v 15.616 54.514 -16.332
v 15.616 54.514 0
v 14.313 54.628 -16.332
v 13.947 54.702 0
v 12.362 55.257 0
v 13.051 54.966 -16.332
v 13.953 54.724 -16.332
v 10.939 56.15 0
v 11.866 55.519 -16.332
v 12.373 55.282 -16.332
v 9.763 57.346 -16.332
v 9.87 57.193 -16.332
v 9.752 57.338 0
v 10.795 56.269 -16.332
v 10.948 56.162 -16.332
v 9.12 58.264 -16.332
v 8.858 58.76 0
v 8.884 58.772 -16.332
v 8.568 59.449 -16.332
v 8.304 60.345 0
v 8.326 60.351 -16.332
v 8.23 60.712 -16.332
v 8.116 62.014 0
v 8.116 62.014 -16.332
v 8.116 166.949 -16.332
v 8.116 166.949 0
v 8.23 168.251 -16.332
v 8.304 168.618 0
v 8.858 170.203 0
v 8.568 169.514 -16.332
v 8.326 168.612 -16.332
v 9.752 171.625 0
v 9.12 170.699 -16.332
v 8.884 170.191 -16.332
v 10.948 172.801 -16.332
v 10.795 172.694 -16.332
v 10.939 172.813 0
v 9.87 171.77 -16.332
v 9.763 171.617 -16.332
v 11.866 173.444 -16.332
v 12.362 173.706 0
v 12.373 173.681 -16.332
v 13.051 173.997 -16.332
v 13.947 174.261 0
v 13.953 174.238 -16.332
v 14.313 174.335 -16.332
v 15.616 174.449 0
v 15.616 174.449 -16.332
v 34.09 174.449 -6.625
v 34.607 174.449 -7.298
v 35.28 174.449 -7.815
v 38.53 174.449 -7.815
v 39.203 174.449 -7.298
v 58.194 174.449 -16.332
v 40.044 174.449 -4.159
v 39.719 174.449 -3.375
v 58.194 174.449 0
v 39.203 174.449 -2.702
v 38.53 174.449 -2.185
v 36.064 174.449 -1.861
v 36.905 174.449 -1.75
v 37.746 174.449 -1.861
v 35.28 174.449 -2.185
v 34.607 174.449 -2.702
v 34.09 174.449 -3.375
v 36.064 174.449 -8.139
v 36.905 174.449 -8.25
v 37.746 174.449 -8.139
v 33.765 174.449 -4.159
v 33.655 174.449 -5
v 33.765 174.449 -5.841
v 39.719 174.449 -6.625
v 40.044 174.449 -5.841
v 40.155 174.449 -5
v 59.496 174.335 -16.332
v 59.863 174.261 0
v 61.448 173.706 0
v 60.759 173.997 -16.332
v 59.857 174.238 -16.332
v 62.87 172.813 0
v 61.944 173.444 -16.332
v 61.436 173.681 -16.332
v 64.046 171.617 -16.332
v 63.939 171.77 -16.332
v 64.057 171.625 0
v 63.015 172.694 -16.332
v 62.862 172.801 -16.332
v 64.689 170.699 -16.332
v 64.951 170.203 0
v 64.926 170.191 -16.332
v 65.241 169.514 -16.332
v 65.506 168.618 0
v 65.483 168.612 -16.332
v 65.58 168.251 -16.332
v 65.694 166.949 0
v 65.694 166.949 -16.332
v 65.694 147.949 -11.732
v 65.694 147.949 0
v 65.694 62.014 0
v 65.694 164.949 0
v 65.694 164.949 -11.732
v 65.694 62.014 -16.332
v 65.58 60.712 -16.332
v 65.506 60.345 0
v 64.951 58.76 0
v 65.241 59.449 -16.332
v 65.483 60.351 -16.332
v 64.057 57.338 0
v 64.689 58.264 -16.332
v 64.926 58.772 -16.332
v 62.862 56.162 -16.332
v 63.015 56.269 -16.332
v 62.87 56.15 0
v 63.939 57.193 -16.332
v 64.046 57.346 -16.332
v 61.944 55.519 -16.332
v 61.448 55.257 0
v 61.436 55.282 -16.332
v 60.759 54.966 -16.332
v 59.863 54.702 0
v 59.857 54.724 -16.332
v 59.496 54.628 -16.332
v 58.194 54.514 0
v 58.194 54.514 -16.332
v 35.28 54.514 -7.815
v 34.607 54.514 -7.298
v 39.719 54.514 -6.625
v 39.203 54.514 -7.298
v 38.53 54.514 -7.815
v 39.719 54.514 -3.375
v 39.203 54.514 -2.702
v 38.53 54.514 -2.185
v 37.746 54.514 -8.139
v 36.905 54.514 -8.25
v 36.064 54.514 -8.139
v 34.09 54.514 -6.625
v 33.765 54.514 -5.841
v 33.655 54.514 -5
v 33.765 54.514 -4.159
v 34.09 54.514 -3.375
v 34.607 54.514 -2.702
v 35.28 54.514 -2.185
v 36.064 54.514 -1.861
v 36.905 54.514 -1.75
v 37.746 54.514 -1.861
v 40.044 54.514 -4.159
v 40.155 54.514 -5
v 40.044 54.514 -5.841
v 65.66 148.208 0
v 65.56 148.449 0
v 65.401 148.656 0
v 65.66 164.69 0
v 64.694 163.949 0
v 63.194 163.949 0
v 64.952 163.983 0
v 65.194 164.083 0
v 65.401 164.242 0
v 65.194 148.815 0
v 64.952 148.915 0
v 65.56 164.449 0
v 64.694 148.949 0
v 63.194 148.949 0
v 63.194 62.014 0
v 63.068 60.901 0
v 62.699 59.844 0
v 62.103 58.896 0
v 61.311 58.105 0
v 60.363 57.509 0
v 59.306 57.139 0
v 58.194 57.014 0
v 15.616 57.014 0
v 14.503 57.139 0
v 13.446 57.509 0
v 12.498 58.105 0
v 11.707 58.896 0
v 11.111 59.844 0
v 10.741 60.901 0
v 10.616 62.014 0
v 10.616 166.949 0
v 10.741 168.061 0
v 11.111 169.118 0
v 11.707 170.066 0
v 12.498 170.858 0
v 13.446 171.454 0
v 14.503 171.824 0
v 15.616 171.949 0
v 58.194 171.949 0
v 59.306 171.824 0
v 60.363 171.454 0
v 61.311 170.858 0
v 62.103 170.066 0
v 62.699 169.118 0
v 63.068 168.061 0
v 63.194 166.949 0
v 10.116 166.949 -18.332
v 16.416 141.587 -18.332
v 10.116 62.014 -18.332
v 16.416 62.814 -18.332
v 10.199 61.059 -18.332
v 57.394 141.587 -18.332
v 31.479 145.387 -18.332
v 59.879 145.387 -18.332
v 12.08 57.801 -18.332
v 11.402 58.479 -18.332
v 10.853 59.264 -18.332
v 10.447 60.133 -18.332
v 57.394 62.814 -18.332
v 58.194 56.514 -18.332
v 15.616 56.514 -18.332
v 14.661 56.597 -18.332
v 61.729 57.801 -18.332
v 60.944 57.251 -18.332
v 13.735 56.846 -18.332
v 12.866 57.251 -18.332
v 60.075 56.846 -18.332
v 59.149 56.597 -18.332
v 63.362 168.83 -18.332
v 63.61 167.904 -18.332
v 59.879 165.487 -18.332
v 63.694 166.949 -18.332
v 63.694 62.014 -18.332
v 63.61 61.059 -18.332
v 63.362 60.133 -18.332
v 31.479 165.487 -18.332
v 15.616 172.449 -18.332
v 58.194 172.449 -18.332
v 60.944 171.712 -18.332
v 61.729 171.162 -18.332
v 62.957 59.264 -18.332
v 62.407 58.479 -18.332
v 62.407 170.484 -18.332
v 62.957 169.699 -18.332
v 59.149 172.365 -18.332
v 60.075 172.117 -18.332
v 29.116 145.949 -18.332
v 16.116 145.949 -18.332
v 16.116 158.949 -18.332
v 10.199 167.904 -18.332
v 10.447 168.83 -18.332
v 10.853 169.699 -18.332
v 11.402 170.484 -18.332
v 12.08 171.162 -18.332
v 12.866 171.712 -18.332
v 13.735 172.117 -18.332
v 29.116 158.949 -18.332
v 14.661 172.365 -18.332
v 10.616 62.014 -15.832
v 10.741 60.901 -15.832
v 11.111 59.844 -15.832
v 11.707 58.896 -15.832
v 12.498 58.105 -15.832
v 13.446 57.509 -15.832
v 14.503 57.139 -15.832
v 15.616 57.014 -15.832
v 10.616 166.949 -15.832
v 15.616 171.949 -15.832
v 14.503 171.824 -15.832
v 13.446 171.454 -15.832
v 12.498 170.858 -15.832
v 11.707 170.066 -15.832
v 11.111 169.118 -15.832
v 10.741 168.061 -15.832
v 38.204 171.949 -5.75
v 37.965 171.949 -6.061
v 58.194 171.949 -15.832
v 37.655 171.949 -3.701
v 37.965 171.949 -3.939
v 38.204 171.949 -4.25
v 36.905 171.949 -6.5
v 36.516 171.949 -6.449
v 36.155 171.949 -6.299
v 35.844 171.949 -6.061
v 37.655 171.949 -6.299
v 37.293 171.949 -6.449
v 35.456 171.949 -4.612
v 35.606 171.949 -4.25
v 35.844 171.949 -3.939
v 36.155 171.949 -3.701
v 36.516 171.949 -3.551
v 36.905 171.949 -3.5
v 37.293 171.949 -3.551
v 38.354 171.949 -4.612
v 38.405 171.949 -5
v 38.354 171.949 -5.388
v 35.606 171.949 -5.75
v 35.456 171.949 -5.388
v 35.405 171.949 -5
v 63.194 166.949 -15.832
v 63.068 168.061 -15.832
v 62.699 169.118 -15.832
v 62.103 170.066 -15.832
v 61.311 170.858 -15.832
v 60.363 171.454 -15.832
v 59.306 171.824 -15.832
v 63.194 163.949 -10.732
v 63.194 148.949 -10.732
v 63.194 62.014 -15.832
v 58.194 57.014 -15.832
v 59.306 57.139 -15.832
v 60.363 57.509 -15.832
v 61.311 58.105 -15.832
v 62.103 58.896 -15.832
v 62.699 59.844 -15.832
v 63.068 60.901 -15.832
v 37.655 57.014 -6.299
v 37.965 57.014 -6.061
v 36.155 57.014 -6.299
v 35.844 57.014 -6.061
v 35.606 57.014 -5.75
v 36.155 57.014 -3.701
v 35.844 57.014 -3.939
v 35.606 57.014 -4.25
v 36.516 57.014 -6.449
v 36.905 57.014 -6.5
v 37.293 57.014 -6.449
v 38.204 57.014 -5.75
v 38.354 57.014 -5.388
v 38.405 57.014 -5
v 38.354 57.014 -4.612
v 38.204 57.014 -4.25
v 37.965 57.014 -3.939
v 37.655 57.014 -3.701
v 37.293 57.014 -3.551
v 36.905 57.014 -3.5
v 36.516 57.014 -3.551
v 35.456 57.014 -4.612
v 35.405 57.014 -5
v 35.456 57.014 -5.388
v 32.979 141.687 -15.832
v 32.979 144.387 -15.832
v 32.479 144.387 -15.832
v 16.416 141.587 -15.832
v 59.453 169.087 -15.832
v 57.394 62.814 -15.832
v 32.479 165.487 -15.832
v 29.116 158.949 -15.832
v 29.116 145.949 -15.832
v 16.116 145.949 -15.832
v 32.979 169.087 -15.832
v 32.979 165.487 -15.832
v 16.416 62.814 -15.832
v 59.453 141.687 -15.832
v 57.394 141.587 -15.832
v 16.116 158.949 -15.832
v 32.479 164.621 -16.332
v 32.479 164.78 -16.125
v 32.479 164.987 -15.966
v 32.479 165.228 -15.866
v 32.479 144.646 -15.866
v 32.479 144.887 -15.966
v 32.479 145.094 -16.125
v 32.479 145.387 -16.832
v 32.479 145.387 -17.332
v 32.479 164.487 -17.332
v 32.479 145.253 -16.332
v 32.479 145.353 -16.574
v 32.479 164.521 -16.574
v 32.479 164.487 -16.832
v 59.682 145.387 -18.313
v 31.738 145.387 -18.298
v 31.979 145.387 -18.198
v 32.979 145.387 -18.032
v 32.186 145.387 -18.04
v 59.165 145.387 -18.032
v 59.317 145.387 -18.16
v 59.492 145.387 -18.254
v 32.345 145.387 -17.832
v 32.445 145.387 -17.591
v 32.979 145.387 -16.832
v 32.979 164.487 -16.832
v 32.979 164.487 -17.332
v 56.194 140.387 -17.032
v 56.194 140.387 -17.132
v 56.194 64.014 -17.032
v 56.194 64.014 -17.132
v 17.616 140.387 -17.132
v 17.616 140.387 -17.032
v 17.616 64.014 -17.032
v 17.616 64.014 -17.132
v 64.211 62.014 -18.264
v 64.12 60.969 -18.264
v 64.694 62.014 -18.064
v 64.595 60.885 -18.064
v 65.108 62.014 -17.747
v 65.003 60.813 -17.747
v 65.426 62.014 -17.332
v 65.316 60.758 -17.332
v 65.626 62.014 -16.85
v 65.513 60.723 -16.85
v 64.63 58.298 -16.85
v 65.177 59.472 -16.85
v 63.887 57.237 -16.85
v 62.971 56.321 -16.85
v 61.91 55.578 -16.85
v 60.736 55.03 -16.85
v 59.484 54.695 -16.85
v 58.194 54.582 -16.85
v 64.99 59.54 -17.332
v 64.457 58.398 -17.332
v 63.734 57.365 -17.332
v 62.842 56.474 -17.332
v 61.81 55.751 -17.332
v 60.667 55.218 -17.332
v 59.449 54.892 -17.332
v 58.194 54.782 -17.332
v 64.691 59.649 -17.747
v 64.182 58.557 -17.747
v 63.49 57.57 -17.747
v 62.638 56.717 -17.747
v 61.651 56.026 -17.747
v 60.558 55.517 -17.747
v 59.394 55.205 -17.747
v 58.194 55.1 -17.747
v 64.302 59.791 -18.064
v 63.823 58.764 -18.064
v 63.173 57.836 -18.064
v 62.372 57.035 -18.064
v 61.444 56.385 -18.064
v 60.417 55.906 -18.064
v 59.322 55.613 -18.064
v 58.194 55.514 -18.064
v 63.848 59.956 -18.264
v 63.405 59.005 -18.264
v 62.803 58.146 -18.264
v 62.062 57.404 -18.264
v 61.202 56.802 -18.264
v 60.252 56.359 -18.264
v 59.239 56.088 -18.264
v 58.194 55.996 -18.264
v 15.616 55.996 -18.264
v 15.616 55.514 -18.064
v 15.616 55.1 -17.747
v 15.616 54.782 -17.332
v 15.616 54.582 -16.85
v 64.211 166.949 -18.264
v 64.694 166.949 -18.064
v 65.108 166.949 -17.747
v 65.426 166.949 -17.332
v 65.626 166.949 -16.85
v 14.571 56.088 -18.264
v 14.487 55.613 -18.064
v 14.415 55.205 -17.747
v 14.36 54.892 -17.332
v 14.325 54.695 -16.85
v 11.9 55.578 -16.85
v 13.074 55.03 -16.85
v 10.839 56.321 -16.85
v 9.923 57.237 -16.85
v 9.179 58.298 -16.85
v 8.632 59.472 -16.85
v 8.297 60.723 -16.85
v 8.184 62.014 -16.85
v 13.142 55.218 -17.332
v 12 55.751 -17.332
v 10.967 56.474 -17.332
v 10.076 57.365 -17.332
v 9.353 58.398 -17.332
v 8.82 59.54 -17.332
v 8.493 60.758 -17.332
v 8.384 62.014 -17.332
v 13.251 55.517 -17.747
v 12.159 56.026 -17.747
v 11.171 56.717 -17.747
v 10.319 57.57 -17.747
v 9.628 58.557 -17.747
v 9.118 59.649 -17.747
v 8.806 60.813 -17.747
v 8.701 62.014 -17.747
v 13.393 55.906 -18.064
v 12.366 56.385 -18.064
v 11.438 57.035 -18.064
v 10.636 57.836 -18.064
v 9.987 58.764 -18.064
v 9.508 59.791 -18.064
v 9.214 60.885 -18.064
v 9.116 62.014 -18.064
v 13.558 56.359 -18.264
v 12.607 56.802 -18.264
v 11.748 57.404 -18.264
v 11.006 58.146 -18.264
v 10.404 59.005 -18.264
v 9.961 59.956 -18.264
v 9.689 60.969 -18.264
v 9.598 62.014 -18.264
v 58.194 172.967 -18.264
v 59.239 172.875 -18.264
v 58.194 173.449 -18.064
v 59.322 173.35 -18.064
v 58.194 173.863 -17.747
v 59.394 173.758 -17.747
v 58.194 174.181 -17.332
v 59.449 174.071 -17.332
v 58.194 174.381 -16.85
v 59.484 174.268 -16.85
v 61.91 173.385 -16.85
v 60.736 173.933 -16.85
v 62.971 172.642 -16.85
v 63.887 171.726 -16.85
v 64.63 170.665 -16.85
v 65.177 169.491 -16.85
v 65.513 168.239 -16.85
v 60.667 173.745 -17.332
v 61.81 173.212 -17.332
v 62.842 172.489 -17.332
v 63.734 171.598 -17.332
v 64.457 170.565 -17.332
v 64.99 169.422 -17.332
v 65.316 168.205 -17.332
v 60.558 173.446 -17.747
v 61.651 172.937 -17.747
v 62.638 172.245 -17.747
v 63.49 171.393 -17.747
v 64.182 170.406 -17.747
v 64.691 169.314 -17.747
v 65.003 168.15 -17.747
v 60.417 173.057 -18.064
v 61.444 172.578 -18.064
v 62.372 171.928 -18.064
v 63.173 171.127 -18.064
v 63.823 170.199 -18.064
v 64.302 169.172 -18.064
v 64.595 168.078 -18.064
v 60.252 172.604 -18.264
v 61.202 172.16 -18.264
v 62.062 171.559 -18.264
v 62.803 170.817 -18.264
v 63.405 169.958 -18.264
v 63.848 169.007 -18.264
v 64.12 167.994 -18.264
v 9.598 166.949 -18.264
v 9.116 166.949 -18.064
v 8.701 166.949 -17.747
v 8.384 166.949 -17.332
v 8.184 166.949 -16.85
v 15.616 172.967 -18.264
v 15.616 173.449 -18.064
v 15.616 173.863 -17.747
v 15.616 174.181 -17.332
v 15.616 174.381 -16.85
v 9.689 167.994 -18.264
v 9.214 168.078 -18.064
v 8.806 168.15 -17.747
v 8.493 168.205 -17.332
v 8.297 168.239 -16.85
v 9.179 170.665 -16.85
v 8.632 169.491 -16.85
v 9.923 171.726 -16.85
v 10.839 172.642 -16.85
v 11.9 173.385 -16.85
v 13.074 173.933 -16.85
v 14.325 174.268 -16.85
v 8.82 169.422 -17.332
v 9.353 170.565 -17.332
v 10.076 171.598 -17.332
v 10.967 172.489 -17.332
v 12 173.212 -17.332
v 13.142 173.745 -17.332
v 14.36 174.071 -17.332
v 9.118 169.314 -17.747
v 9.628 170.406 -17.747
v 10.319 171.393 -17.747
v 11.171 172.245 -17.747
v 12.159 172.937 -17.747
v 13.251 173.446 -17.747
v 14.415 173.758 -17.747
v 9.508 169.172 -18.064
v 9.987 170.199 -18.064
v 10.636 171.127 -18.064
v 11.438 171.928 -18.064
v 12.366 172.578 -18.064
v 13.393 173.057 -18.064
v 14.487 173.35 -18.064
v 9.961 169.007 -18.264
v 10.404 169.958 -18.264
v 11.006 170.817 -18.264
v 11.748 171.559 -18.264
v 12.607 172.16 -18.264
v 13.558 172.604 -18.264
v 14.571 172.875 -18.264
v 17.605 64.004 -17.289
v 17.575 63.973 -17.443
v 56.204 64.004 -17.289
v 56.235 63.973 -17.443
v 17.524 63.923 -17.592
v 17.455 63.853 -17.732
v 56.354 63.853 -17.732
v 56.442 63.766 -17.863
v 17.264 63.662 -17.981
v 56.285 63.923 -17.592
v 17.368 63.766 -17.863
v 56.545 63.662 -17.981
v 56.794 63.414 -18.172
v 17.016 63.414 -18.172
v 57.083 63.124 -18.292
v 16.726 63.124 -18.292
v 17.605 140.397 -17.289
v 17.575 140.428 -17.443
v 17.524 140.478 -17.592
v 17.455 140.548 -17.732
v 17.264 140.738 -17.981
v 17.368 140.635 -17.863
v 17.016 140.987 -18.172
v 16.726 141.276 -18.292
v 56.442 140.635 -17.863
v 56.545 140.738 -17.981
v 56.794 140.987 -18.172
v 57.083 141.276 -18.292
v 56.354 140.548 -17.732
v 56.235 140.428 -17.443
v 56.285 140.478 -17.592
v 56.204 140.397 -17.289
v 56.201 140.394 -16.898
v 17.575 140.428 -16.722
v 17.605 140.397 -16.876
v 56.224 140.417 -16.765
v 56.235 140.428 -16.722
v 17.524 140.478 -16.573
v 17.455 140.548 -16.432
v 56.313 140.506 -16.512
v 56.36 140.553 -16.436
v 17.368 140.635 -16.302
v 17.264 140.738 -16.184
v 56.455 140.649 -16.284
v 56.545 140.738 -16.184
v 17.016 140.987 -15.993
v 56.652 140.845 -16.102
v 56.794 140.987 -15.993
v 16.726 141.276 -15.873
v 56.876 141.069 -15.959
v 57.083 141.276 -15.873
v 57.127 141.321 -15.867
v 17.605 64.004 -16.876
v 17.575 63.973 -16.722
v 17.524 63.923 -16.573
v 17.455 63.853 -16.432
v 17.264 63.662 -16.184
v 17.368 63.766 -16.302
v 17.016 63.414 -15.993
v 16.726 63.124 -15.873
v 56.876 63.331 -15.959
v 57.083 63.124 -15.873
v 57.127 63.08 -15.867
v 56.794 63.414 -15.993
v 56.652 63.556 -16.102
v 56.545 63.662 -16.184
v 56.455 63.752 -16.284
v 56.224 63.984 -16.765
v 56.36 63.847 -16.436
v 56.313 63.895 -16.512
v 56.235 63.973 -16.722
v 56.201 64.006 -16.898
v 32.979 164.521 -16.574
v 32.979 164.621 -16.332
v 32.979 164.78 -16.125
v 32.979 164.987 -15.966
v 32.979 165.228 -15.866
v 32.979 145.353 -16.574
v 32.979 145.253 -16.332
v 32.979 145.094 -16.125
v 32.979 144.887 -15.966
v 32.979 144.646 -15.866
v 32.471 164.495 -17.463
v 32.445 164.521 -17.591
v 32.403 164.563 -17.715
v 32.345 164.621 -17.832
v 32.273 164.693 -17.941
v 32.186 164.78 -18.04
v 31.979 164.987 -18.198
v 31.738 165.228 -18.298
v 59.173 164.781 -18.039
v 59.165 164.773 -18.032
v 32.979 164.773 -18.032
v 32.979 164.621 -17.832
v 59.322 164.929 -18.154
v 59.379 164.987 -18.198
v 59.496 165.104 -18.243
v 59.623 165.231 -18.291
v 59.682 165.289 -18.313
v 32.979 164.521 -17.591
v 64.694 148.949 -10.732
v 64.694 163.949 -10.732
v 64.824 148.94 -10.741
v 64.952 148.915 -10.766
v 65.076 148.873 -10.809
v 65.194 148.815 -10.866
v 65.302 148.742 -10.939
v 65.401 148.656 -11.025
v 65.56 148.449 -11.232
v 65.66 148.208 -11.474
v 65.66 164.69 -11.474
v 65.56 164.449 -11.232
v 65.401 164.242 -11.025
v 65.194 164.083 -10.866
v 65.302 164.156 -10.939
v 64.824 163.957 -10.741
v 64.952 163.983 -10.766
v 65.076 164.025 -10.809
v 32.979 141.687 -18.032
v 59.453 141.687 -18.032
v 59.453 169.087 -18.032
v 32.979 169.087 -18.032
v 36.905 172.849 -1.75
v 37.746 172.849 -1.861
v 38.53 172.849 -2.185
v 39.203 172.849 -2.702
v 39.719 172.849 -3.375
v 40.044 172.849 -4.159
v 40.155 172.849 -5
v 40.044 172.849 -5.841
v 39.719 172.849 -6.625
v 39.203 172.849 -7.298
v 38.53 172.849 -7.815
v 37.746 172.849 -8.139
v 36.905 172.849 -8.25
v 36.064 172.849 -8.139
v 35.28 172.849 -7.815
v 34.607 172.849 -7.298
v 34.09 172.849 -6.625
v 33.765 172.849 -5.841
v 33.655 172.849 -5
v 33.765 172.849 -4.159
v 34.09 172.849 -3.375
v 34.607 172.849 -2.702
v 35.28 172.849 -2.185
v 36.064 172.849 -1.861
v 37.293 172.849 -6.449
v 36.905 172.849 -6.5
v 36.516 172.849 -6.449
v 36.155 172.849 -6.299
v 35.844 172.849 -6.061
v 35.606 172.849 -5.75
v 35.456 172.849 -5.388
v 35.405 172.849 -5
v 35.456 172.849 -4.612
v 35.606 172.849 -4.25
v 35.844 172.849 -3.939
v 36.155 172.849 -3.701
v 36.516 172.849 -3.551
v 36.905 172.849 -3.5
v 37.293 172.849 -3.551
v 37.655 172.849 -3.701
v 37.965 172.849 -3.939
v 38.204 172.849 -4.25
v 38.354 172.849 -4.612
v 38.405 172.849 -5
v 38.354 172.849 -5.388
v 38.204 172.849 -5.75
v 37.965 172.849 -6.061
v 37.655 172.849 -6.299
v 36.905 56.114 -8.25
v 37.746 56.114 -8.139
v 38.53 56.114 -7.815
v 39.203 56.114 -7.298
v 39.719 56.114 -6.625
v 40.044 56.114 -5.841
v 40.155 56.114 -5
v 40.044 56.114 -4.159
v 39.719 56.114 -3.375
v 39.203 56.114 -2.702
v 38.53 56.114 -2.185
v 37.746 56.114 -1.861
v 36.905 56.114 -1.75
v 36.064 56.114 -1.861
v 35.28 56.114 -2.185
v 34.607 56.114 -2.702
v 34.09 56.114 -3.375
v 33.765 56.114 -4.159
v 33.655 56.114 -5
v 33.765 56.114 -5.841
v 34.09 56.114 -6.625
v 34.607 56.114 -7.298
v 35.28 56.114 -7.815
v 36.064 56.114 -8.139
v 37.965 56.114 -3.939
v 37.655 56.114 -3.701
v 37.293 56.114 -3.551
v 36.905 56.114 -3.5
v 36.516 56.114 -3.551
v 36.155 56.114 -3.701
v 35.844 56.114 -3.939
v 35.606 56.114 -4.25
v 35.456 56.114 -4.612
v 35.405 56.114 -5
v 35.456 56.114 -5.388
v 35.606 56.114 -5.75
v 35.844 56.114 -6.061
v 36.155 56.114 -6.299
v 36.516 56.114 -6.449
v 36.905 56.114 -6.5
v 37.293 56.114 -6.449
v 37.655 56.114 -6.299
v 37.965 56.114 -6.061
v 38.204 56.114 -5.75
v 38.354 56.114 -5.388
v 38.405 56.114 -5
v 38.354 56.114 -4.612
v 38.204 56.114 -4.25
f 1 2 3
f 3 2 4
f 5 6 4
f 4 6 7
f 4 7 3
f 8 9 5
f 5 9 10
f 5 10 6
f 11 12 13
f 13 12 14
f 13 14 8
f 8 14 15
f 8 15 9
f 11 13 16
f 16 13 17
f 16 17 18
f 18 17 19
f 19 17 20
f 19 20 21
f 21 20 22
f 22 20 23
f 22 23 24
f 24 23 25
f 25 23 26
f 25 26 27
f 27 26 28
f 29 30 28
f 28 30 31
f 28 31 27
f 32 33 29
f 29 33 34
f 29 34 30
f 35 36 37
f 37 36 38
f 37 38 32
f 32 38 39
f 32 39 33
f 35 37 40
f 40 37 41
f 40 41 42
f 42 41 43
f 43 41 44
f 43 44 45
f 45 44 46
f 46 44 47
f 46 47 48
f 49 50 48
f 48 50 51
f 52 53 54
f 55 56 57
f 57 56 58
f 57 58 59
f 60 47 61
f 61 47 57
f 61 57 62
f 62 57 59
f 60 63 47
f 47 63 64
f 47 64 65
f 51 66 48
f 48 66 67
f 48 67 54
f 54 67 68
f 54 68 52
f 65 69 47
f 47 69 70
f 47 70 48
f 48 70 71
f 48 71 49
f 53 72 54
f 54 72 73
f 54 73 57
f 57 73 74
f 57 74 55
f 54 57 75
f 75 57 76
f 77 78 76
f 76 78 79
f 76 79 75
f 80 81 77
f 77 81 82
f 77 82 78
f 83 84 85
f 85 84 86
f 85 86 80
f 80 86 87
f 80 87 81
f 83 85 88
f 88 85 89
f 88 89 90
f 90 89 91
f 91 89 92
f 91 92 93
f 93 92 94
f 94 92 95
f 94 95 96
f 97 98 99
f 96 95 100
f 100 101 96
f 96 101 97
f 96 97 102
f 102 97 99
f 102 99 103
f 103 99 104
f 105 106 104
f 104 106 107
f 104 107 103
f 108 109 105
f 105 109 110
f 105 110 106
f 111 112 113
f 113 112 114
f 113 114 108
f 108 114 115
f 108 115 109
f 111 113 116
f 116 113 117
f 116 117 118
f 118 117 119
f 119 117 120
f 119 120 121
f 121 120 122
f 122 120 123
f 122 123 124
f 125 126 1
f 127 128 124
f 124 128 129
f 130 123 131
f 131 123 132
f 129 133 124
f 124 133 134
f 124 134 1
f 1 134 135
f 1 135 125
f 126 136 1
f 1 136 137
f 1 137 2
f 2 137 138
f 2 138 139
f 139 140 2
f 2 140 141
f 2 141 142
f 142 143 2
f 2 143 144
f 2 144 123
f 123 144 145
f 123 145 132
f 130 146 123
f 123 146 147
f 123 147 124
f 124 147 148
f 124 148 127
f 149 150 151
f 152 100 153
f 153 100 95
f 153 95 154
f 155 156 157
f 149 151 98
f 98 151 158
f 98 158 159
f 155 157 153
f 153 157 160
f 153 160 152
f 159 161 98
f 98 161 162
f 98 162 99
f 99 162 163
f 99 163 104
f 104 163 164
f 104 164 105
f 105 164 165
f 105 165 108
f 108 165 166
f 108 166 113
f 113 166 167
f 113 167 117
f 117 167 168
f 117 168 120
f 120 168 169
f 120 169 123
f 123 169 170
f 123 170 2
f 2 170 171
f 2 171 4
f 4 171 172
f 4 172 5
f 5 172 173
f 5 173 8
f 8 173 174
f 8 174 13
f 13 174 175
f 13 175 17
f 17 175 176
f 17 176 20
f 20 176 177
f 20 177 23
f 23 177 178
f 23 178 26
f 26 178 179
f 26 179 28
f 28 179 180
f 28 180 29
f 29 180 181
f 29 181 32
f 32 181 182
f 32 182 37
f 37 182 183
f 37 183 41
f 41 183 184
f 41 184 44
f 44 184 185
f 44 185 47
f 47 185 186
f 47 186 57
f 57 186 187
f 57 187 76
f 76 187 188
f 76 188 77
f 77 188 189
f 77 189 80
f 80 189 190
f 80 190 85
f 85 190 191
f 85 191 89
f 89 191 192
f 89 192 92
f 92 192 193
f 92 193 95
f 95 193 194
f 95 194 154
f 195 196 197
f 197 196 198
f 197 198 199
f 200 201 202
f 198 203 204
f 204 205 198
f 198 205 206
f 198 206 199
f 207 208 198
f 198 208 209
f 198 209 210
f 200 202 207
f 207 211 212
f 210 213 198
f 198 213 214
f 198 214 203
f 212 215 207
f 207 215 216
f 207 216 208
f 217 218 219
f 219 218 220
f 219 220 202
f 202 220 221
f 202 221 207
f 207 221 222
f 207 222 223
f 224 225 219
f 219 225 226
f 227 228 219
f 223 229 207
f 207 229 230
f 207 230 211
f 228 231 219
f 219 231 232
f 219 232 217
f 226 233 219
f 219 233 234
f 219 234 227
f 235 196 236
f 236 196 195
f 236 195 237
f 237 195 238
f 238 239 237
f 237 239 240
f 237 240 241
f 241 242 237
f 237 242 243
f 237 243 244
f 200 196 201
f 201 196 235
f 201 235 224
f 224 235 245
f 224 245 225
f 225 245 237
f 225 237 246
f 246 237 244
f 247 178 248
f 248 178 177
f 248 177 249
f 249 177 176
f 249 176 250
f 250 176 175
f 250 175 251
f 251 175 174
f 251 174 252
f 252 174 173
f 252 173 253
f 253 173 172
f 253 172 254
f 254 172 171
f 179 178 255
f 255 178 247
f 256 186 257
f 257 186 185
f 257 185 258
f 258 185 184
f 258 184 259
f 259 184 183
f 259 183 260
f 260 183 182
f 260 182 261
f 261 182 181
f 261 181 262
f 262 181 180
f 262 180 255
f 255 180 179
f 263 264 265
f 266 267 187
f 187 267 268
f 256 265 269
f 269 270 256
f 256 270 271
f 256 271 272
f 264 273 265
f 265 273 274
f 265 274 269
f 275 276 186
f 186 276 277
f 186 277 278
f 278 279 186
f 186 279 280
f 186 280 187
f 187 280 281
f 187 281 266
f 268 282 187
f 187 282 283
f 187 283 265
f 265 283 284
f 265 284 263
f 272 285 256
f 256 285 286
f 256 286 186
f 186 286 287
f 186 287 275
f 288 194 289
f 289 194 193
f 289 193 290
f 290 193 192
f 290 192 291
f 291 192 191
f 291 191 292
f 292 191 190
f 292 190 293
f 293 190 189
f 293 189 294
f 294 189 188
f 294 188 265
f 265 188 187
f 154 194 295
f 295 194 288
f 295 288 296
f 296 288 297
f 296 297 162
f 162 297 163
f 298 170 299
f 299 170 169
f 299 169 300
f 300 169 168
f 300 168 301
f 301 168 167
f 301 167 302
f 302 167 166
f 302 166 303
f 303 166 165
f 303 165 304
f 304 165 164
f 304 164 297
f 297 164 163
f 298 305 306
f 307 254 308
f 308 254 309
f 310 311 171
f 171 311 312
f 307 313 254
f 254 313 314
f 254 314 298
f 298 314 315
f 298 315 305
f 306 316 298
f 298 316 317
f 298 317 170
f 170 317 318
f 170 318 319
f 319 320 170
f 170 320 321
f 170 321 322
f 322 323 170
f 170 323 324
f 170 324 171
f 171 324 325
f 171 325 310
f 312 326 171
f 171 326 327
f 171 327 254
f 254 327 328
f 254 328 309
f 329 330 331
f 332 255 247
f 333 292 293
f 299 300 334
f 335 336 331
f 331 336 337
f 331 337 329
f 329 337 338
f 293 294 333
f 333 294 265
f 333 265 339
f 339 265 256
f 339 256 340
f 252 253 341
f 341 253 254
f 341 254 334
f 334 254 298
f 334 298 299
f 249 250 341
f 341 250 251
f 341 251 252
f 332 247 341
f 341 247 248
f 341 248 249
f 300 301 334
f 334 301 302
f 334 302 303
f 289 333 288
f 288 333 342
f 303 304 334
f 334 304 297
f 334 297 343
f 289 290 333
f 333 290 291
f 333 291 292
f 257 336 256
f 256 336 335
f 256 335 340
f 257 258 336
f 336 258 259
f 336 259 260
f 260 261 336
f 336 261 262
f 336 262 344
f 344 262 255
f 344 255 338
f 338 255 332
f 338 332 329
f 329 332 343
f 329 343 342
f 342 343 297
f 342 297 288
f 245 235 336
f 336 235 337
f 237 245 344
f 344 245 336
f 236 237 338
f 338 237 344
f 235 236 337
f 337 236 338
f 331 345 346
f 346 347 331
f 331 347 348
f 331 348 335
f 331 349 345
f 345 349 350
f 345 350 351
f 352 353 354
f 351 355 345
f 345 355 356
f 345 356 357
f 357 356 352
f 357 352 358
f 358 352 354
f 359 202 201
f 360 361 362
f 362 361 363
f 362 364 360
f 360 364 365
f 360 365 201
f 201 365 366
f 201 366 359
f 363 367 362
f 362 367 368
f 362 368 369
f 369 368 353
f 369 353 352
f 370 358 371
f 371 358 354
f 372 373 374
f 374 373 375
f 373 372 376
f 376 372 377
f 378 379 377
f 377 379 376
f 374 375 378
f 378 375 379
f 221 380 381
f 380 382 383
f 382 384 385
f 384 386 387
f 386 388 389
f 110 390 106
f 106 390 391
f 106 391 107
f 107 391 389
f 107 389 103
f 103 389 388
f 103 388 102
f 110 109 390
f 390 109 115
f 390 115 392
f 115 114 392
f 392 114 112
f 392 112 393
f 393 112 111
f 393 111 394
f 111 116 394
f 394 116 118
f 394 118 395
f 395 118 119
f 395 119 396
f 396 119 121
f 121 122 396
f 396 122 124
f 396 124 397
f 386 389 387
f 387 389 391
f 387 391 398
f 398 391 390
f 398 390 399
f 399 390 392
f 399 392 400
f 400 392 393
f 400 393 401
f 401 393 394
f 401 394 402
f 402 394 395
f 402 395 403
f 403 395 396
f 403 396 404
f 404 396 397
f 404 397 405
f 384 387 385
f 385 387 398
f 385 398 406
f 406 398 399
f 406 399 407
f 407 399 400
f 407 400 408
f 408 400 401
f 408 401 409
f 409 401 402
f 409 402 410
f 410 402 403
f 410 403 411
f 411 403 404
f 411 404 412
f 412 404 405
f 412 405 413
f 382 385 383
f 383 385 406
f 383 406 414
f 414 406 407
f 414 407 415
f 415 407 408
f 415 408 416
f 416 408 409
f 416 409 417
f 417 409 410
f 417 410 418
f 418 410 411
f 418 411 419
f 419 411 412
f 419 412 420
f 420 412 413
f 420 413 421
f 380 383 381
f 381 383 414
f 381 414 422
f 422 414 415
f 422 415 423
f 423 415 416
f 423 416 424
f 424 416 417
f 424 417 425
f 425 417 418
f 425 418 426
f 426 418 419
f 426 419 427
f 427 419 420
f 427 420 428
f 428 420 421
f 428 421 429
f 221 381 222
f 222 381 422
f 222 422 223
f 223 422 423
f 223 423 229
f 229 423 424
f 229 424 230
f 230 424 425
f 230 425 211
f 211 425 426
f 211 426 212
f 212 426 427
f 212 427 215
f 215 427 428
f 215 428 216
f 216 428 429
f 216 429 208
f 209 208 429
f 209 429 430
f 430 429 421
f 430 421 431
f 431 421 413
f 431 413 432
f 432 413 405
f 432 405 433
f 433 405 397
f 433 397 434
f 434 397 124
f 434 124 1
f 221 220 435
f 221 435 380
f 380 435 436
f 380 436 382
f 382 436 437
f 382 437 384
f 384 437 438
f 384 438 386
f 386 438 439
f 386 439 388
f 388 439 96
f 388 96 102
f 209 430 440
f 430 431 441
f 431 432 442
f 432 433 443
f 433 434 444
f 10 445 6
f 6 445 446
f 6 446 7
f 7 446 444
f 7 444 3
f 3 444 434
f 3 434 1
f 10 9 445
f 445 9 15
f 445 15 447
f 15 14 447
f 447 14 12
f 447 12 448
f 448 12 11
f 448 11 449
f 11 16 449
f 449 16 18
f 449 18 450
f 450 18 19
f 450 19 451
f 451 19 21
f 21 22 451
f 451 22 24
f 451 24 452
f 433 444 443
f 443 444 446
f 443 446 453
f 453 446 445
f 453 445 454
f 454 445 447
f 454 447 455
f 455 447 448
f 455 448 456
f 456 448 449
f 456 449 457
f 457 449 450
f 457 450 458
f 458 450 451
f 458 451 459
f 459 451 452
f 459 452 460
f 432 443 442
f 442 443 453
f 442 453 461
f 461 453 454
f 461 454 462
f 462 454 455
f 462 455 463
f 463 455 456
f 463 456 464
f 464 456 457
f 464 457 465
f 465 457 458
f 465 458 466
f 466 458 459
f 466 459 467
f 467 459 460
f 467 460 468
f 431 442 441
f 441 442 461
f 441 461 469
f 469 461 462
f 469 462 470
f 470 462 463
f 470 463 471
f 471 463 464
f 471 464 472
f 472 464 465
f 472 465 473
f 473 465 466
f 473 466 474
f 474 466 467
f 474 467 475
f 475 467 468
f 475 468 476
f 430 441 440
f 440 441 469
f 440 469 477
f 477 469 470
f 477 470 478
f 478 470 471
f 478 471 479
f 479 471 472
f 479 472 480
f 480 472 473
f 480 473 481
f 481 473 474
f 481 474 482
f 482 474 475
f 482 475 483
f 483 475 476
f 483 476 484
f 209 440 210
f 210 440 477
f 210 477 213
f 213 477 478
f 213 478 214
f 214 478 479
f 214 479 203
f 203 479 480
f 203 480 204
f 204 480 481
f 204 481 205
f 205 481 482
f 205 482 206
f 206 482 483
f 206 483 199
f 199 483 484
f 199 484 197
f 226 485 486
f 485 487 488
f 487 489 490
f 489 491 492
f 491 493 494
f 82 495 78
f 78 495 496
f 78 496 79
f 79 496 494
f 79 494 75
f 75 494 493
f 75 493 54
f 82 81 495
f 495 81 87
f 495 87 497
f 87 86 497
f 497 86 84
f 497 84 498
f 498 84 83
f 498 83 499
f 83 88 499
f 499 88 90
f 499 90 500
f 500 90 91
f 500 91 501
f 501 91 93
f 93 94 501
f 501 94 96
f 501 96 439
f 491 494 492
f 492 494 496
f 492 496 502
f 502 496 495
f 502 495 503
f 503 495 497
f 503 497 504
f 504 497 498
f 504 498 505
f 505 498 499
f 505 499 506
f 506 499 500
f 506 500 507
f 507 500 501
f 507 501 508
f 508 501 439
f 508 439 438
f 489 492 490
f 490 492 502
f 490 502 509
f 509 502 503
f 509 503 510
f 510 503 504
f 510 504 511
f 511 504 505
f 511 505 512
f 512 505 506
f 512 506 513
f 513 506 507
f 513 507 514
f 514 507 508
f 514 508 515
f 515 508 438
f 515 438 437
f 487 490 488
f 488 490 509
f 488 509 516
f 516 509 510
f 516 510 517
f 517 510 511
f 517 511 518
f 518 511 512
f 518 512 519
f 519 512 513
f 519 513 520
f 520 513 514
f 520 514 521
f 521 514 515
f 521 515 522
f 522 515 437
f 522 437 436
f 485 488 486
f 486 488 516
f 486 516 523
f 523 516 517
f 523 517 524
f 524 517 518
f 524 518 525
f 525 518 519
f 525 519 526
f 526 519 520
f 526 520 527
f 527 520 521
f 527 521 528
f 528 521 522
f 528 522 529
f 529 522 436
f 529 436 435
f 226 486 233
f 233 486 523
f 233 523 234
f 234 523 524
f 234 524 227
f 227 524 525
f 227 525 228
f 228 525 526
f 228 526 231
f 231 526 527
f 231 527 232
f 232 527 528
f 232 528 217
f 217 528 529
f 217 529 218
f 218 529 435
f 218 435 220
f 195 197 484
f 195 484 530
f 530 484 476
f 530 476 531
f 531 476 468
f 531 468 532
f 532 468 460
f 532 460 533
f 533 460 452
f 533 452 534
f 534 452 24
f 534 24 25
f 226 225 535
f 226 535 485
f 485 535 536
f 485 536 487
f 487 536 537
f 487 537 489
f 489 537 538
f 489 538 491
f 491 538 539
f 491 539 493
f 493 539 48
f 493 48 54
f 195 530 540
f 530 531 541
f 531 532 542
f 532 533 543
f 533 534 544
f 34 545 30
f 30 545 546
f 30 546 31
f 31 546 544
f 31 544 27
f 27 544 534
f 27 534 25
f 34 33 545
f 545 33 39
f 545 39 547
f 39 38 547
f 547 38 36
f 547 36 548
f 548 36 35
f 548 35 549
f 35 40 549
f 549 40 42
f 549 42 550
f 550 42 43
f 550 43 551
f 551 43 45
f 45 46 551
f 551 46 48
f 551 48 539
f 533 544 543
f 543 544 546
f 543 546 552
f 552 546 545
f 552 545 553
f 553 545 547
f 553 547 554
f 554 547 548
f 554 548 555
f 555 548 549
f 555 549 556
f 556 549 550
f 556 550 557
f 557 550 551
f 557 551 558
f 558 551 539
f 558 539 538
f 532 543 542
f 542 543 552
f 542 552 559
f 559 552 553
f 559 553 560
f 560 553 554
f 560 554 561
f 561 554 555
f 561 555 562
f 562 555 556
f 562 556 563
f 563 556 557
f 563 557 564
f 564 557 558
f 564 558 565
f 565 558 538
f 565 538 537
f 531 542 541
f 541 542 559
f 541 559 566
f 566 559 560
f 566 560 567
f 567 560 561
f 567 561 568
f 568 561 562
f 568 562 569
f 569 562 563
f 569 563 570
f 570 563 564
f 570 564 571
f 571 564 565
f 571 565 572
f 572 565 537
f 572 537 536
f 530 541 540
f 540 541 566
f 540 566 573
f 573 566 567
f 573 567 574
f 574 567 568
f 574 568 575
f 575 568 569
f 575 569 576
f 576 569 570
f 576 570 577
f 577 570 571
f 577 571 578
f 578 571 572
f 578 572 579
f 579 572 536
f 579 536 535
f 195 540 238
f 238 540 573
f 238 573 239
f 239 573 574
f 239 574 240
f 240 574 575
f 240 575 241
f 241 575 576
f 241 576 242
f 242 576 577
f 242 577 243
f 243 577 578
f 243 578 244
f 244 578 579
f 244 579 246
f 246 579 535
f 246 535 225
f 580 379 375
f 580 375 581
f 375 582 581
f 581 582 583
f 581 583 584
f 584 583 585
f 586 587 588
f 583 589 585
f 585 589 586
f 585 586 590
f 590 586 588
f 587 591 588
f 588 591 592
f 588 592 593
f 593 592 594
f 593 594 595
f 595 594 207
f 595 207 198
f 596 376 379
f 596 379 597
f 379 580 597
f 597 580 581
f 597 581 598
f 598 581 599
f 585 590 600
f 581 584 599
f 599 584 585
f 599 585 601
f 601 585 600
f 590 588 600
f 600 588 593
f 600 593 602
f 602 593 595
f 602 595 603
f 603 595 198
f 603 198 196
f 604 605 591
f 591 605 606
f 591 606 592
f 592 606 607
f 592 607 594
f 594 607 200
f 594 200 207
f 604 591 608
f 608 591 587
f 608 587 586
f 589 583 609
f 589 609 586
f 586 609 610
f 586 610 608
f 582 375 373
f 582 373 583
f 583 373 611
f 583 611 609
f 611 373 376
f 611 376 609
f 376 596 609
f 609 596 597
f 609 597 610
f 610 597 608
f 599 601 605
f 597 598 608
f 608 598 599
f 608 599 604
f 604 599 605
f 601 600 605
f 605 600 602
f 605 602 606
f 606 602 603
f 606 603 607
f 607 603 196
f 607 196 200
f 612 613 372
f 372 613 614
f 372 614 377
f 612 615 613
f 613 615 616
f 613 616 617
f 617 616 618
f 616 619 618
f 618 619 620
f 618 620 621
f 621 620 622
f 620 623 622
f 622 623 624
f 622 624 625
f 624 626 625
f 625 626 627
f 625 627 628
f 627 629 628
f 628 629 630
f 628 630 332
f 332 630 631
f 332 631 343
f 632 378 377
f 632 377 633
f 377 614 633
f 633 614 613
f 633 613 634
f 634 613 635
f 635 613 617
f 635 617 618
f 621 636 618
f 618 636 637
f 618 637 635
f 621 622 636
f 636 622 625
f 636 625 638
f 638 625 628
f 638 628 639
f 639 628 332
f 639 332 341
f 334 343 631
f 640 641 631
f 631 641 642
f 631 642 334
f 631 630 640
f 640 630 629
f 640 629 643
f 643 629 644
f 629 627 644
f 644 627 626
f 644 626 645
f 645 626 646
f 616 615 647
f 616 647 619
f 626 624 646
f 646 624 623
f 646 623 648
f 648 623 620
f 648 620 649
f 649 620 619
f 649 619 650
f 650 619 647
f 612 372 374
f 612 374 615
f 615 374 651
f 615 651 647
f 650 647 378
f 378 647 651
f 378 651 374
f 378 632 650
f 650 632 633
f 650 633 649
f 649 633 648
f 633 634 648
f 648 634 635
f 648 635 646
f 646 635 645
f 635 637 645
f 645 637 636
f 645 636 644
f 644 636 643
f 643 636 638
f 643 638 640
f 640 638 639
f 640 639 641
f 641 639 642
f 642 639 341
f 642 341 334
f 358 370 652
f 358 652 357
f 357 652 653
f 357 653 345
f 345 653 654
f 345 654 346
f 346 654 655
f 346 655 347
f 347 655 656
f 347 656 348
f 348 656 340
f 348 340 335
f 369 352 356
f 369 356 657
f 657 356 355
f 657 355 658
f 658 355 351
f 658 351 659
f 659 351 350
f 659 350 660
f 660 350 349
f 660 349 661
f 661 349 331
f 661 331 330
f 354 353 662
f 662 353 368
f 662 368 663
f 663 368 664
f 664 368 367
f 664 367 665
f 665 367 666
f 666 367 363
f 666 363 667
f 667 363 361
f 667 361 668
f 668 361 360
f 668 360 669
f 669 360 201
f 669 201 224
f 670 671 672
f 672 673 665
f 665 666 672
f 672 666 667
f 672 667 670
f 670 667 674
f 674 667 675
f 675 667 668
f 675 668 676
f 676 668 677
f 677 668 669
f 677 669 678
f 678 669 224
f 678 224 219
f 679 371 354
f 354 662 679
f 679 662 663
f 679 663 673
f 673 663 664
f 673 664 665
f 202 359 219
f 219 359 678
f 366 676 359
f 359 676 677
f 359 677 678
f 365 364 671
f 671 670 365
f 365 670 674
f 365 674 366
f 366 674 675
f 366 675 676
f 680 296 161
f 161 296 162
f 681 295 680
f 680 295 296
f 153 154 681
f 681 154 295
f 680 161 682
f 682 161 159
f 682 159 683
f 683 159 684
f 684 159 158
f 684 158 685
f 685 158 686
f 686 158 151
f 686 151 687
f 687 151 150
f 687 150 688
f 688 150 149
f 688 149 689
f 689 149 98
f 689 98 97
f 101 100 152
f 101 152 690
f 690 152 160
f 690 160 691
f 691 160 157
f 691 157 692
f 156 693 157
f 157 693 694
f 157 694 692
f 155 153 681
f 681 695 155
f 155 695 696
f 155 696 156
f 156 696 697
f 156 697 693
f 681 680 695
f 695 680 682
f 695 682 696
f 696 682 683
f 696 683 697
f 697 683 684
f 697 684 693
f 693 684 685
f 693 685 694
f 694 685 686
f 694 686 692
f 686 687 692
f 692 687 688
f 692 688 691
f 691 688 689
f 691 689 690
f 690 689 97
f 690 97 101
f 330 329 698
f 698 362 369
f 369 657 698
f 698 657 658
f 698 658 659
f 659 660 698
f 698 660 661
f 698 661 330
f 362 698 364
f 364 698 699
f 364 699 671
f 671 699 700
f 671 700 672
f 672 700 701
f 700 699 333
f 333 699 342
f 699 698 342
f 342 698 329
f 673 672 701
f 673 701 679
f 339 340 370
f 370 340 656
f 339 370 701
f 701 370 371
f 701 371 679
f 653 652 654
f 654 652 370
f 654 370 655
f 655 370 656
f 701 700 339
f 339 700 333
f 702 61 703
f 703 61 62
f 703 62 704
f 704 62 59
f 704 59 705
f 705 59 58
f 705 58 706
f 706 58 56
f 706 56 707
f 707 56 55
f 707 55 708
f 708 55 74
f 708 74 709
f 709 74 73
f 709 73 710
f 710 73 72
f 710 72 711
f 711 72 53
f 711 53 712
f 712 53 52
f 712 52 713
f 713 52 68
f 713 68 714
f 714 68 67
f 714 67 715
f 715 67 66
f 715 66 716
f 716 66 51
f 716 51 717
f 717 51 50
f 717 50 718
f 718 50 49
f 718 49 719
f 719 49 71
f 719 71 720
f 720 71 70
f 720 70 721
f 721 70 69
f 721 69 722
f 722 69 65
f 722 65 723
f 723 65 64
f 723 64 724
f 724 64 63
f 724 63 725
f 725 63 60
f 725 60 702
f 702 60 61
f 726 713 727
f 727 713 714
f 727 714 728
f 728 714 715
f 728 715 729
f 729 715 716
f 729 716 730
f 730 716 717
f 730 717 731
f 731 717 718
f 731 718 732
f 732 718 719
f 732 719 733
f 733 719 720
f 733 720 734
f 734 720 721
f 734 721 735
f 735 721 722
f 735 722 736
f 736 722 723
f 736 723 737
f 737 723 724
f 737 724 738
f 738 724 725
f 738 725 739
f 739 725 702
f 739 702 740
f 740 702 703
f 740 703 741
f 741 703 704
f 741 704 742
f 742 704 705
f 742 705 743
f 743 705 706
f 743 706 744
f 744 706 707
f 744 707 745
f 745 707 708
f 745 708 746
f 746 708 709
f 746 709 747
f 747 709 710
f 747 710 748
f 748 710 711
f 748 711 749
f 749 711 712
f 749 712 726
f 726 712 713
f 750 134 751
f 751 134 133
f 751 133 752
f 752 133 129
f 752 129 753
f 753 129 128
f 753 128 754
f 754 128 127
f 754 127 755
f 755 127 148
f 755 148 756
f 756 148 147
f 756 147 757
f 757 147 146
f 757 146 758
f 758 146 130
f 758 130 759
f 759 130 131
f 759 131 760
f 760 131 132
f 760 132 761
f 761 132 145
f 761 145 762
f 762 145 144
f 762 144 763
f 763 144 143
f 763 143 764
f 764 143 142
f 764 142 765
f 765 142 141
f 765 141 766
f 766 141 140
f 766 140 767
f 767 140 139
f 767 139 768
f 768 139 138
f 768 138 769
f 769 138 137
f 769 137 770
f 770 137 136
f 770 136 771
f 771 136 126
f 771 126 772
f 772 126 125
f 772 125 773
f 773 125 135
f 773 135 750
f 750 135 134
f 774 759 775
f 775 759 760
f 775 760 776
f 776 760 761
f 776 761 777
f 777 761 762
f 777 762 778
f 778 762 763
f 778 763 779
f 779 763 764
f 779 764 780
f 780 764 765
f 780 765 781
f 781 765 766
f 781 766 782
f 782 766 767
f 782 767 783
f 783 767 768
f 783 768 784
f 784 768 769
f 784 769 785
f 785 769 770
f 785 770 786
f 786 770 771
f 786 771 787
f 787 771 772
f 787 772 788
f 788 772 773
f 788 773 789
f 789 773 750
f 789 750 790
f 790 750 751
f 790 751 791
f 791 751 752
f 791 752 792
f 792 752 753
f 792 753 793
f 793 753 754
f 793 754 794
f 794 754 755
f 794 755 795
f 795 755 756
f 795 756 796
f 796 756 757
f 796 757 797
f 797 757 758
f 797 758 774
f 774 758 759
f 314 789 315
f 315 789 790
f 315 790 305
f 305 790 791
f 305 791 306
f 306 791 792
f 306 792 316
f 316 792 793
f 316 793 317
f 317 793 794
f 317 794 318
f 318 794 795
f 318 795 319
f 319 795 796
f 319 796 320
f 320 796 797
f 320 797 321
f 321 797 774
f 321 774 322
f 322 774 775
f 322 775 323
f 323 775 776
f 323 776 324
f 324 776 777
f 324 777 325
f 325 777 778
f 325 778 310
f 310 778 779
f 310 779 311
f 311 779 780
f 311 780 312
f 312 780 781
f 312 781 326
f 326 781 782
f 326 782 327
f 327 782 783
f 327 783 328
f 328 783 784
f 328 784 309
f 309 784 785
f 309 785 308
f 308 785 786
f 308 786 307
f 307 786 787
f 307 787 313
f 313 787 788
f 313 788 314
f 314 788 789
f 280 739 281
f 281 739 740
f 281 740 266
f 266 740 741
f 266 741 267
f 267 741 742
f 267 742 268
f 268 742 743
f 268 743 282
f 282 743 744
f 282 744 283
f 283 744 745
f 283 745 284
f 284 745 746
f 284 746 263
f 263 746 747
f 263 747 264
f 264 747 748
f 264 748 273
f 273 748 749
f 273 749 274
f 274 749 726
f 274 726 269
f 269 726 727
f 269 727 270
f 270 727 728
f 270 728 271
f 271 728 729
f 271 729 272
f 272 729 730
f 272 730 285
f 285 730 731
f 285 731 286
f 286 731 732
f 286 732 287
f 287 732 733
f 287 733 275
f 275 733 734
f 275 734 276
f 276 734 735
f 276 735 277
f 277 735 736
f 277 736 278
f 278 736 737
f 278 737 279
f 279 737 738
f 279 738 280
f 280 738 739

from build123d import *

# Parameters (mm, degrees)
BOSS_EXTRUDE1_DEPTH = 18.332422662
SHELL2_T            = -2.5
SKETCH2_W           = 26.4
SKETCH2_H           = 19.1
SKETCH2_W_2         = 13
SKETCH2_H_2         = 13
SKETCH2_W_3         = 38.578
SKETCH2_H_3         = 76.372933558
CUT_EXTRUDE1_DEPTH  = 4
FILLET1_R           = 2
FILLET2_R           = 1.2
FILLET4_R           = 1
CUT_EXTRUDE2_REACH  = 186.618
SKETCH3_W           = 10.732422662
SKETCH3_H           = 15
FILLET5_R           = 1
SKETCH6_W           = 26.474005188
SKETCH6_H           = 27.4
CUT_EXTRUDE5_DEPTH  = 2.2
SKETCH7_R           = 3.25
CUT_EXTRUDE6_DEPTH  = 1.6
SKETCH8_R           = 3.25
CUT_EXTRUDE7_DEPTH  = 1.6
SKETCH9_R           = 1.5
CUT_EXTRUDE8_DEPTH  = 5
SKETCH10_R          = 1.5
CUT_EXTRUDE9_DEPTH  = 5


with BuildPart() as part:
    # Sketch1 → Boss-Extrude1 (new body)
    with BuildSketch(Plane.XY):
        with BuildLine():
            Line((15.615664433, 54.513874967), (58.193664433, 54.513874967))
            ThreePointArc((58.193664433, 54.513874967), (63.496965292, 56.710574108), (65.693664433, 62.013874967))
            Line((65.693664433, 62.013874967), (65.693664433, 166.948874967))
            ThreePointArc((65.693664433, 166.948874967), (63.496965292, 172.252175826), (58.193664433, 174.448874967))
            Line((58.193664433, 174.448874967), (15.615664433, 174.448874967))
            ThreePointArc((15.615664433, 174.448874967), (10.312363574, 172.252175826), (8.115664433, 166.948874967))
            Line((8.115664433, 166.948874967), (8.115664433, 62.013874967))
            ThreePointArc((8.115664433, 62.013874967), (10.312363574, 56.710574108), (15.615664433, 54.513874967))
        make_face()
    extrude(amount=-BOSS_EXTRUDE1_DEPTH)

    # Shell2
    shell2_openings = [part.faces().sort_by_distance(p)[0] for p in [
        (36.904664433, 114.481374967, 0),
    ]]
    offset(amount=SHELL2_T, openings=shell2_openings, kind=Kind.INTERSECTION)

    # Sketch2 → Cut-Extrude1 (cut)
    with BuildSketch(Plane(origin=(0, 0, -18.332422662), x_dir=(-1, 0, 0), z_dir=(0, 0, -1))):
        with Locations((-45.679251594, 154.936808525)):
            Rectangle(SKETCH2_W, SKETCH2_H)
        with Locations((-22.615664433, 152.448874967)):
            Rectangle(SKETCH2_W_2, SKETCH2_H_2)
        with Locations((-36.904664433, 102.200341746)):
            Rectangle(SKETCH2_W_3, SKETCH2_H_3)
    extrude(amount=-CUT_EXTRUDE1_DEPTH, mode=Mode.SUBTRACT)

    # Fillet1
    fillet1_edges = [part.edges().sort_by_distance(p)[0] for p in [
        (63.496965292, 56.710574108, -18.332422662),
        (65.693664433, 114.481374967, -18.332422662),
        (63.496965292, 172.252175826, -18.332422662),
        (36.904664433, 174.448874967, -18.332422662),
        (10.312363574, 172.252175826, -18.332422662),
        (8.115664433, 114.481374967, -18.332422662),
        (10.312363574, 56.710574108, -18.332422662),
        (36.904664433, 54.513874967, -18.332422662),
    ]]
    fillet(fillet1_edges, radius=FILLET1_R)

    # Fillet2
    fillet2_edges = [part.edges().sort_by_distance(p)[0] for p in [
        (36.904664433, 64.013874967, -15.832422662),
        (17.615664433, 102.200341746, -15.832422662),
        (36.904664433, 140.386808525, -15.832422662),
        (56.193664433, 102.200341746, -15.832422662),
        (56.193664433, 102.200341746, -18.332422662),
        (36.904664433, 64.013874967, -18.332422662),
        (17.615664433, 102.200341746, -18.332422662),
        (36.904664433, 140.386808525, -18.332422662),
    ]]
    fillet(fillet2_edges, radius=FILLET2_R)

    # Fillet4
    fillet4_edges = [part.edges().sort_by_distance(p)[0] for p in [
        (45.679251594, 164.486808525, -15.832422662),
        (45.679251594, 145.386808525, -15.832422662),
        (32.479251594, 154.936808525, -18.332422662),
        (45.679251594, 164.486808525, -18.332422662),
        (58.879251594, 154.936808525, -18.332422662),
    ]]
    fillet(fillet4_edges, radius=FILLET4_R)

    # Sketch3 → Cut-Extrude2 (cut, up to next)
    with BuildSketch(Plane(origin=(65.693664433, 0, 0), x_dir=(0, 0, -1), z_dir=(1, 0, 0)), mode=Mode.PRIVATE) as cut_extrude2_sk1:
        with Locations((5.366211331, 156.448874967)):
            Rectangle(SKETCH3_W, SKETCH3_H)
    cut_extrude2_tool1 = extrude(cut_extrude2_sk1.sketch, amount=-CUT_EXTRUDE2_REACH, mode=Mode.PRIVATE) & part.part
    add(cut_extrude2_tool1.solids().sort_by_distance((65.693664, 156.448875, -5.366211))[0], mode=Mode.SUBTRACT)

    # Fillet5
    fillet5_edges = [part.edges().sort_by_distance(p)[0] for p in [
        (65.693664433, 148.948874967, -5.366211331),
        (65.693664433, 156.448874967, -10.732422662),
        (65.693664433, 163.948874967, -5.366211331),
    ]]
    fillet(fillet5_edges, radius=FILLET5_R)

    # Sketch6 → Cut-Extrude5 (cut)
    with BuildSketch(Plane.XY.offset(-15.832422662)):
        with Locations((46.216254188, 155.386808525)):
            Rectangle(SKETCH6_W, SKETCH6_H)
    extrude(amount=-CUT_EXTRUDE5_DEPTH, mode=Mode.SUBTRACT)

    # Sketch7 → Cut-Extrude6 (cut)
    with BuildSketch(Plane(origin=(0, 174.448874967, 0), x_dir=(1, 0, 0), z_dir=(0, 1, 0))):
        with Locations(Location((36.904664433, 5, 0), (0, 0, 270))):
            Circle(SKETCH7_R)
    extrude(amount=-CUT_EXTRUDE6_DEPTH, mode=Mode.SUBTRACT)

    # Sketch8 → Cut-Extrude7 (cut)
    with BuildSketch(Plane.XZ.offset(-54.513874967)):
        with Locations(Location((36.904664433, -5, 0), (0, 0, 90))):
            Circle(SKETCH8_R)
    extrude(amount=-CUT_EXTRUDE7_DEPTH, mode=Mode.SUBTRACT)

    # Sketch9 → Cut-Extrude8 (cut)
    with BuildSketch(Plane.XZ.offset(-56.113874967)):
        with Locations(Location((36.904664433, -5, 0), (0, 0, 270))):
            Circle(SKETCH9_R)
    extrude(amount=-CUT_EXTRUDE8_DEPTH, mode=Mode.SUBTRACT)

    # Sketch10 → Cut-Extrude9 (cut)
    with BuildSketch(Plane(origin=(0, 172.848874967, 0), x_dir=(1, 0, 0), z_dir=(0, 1, 0))):
        with Locations(Location((36.904664433, 5, 0), (0, 0, 90))):
            Circle(SKETCH10_R)
    extrude(amount=-CUT_EXTRUDE9_DEPTH, mode=Mode.SUBTRACT)


solid = part.part
